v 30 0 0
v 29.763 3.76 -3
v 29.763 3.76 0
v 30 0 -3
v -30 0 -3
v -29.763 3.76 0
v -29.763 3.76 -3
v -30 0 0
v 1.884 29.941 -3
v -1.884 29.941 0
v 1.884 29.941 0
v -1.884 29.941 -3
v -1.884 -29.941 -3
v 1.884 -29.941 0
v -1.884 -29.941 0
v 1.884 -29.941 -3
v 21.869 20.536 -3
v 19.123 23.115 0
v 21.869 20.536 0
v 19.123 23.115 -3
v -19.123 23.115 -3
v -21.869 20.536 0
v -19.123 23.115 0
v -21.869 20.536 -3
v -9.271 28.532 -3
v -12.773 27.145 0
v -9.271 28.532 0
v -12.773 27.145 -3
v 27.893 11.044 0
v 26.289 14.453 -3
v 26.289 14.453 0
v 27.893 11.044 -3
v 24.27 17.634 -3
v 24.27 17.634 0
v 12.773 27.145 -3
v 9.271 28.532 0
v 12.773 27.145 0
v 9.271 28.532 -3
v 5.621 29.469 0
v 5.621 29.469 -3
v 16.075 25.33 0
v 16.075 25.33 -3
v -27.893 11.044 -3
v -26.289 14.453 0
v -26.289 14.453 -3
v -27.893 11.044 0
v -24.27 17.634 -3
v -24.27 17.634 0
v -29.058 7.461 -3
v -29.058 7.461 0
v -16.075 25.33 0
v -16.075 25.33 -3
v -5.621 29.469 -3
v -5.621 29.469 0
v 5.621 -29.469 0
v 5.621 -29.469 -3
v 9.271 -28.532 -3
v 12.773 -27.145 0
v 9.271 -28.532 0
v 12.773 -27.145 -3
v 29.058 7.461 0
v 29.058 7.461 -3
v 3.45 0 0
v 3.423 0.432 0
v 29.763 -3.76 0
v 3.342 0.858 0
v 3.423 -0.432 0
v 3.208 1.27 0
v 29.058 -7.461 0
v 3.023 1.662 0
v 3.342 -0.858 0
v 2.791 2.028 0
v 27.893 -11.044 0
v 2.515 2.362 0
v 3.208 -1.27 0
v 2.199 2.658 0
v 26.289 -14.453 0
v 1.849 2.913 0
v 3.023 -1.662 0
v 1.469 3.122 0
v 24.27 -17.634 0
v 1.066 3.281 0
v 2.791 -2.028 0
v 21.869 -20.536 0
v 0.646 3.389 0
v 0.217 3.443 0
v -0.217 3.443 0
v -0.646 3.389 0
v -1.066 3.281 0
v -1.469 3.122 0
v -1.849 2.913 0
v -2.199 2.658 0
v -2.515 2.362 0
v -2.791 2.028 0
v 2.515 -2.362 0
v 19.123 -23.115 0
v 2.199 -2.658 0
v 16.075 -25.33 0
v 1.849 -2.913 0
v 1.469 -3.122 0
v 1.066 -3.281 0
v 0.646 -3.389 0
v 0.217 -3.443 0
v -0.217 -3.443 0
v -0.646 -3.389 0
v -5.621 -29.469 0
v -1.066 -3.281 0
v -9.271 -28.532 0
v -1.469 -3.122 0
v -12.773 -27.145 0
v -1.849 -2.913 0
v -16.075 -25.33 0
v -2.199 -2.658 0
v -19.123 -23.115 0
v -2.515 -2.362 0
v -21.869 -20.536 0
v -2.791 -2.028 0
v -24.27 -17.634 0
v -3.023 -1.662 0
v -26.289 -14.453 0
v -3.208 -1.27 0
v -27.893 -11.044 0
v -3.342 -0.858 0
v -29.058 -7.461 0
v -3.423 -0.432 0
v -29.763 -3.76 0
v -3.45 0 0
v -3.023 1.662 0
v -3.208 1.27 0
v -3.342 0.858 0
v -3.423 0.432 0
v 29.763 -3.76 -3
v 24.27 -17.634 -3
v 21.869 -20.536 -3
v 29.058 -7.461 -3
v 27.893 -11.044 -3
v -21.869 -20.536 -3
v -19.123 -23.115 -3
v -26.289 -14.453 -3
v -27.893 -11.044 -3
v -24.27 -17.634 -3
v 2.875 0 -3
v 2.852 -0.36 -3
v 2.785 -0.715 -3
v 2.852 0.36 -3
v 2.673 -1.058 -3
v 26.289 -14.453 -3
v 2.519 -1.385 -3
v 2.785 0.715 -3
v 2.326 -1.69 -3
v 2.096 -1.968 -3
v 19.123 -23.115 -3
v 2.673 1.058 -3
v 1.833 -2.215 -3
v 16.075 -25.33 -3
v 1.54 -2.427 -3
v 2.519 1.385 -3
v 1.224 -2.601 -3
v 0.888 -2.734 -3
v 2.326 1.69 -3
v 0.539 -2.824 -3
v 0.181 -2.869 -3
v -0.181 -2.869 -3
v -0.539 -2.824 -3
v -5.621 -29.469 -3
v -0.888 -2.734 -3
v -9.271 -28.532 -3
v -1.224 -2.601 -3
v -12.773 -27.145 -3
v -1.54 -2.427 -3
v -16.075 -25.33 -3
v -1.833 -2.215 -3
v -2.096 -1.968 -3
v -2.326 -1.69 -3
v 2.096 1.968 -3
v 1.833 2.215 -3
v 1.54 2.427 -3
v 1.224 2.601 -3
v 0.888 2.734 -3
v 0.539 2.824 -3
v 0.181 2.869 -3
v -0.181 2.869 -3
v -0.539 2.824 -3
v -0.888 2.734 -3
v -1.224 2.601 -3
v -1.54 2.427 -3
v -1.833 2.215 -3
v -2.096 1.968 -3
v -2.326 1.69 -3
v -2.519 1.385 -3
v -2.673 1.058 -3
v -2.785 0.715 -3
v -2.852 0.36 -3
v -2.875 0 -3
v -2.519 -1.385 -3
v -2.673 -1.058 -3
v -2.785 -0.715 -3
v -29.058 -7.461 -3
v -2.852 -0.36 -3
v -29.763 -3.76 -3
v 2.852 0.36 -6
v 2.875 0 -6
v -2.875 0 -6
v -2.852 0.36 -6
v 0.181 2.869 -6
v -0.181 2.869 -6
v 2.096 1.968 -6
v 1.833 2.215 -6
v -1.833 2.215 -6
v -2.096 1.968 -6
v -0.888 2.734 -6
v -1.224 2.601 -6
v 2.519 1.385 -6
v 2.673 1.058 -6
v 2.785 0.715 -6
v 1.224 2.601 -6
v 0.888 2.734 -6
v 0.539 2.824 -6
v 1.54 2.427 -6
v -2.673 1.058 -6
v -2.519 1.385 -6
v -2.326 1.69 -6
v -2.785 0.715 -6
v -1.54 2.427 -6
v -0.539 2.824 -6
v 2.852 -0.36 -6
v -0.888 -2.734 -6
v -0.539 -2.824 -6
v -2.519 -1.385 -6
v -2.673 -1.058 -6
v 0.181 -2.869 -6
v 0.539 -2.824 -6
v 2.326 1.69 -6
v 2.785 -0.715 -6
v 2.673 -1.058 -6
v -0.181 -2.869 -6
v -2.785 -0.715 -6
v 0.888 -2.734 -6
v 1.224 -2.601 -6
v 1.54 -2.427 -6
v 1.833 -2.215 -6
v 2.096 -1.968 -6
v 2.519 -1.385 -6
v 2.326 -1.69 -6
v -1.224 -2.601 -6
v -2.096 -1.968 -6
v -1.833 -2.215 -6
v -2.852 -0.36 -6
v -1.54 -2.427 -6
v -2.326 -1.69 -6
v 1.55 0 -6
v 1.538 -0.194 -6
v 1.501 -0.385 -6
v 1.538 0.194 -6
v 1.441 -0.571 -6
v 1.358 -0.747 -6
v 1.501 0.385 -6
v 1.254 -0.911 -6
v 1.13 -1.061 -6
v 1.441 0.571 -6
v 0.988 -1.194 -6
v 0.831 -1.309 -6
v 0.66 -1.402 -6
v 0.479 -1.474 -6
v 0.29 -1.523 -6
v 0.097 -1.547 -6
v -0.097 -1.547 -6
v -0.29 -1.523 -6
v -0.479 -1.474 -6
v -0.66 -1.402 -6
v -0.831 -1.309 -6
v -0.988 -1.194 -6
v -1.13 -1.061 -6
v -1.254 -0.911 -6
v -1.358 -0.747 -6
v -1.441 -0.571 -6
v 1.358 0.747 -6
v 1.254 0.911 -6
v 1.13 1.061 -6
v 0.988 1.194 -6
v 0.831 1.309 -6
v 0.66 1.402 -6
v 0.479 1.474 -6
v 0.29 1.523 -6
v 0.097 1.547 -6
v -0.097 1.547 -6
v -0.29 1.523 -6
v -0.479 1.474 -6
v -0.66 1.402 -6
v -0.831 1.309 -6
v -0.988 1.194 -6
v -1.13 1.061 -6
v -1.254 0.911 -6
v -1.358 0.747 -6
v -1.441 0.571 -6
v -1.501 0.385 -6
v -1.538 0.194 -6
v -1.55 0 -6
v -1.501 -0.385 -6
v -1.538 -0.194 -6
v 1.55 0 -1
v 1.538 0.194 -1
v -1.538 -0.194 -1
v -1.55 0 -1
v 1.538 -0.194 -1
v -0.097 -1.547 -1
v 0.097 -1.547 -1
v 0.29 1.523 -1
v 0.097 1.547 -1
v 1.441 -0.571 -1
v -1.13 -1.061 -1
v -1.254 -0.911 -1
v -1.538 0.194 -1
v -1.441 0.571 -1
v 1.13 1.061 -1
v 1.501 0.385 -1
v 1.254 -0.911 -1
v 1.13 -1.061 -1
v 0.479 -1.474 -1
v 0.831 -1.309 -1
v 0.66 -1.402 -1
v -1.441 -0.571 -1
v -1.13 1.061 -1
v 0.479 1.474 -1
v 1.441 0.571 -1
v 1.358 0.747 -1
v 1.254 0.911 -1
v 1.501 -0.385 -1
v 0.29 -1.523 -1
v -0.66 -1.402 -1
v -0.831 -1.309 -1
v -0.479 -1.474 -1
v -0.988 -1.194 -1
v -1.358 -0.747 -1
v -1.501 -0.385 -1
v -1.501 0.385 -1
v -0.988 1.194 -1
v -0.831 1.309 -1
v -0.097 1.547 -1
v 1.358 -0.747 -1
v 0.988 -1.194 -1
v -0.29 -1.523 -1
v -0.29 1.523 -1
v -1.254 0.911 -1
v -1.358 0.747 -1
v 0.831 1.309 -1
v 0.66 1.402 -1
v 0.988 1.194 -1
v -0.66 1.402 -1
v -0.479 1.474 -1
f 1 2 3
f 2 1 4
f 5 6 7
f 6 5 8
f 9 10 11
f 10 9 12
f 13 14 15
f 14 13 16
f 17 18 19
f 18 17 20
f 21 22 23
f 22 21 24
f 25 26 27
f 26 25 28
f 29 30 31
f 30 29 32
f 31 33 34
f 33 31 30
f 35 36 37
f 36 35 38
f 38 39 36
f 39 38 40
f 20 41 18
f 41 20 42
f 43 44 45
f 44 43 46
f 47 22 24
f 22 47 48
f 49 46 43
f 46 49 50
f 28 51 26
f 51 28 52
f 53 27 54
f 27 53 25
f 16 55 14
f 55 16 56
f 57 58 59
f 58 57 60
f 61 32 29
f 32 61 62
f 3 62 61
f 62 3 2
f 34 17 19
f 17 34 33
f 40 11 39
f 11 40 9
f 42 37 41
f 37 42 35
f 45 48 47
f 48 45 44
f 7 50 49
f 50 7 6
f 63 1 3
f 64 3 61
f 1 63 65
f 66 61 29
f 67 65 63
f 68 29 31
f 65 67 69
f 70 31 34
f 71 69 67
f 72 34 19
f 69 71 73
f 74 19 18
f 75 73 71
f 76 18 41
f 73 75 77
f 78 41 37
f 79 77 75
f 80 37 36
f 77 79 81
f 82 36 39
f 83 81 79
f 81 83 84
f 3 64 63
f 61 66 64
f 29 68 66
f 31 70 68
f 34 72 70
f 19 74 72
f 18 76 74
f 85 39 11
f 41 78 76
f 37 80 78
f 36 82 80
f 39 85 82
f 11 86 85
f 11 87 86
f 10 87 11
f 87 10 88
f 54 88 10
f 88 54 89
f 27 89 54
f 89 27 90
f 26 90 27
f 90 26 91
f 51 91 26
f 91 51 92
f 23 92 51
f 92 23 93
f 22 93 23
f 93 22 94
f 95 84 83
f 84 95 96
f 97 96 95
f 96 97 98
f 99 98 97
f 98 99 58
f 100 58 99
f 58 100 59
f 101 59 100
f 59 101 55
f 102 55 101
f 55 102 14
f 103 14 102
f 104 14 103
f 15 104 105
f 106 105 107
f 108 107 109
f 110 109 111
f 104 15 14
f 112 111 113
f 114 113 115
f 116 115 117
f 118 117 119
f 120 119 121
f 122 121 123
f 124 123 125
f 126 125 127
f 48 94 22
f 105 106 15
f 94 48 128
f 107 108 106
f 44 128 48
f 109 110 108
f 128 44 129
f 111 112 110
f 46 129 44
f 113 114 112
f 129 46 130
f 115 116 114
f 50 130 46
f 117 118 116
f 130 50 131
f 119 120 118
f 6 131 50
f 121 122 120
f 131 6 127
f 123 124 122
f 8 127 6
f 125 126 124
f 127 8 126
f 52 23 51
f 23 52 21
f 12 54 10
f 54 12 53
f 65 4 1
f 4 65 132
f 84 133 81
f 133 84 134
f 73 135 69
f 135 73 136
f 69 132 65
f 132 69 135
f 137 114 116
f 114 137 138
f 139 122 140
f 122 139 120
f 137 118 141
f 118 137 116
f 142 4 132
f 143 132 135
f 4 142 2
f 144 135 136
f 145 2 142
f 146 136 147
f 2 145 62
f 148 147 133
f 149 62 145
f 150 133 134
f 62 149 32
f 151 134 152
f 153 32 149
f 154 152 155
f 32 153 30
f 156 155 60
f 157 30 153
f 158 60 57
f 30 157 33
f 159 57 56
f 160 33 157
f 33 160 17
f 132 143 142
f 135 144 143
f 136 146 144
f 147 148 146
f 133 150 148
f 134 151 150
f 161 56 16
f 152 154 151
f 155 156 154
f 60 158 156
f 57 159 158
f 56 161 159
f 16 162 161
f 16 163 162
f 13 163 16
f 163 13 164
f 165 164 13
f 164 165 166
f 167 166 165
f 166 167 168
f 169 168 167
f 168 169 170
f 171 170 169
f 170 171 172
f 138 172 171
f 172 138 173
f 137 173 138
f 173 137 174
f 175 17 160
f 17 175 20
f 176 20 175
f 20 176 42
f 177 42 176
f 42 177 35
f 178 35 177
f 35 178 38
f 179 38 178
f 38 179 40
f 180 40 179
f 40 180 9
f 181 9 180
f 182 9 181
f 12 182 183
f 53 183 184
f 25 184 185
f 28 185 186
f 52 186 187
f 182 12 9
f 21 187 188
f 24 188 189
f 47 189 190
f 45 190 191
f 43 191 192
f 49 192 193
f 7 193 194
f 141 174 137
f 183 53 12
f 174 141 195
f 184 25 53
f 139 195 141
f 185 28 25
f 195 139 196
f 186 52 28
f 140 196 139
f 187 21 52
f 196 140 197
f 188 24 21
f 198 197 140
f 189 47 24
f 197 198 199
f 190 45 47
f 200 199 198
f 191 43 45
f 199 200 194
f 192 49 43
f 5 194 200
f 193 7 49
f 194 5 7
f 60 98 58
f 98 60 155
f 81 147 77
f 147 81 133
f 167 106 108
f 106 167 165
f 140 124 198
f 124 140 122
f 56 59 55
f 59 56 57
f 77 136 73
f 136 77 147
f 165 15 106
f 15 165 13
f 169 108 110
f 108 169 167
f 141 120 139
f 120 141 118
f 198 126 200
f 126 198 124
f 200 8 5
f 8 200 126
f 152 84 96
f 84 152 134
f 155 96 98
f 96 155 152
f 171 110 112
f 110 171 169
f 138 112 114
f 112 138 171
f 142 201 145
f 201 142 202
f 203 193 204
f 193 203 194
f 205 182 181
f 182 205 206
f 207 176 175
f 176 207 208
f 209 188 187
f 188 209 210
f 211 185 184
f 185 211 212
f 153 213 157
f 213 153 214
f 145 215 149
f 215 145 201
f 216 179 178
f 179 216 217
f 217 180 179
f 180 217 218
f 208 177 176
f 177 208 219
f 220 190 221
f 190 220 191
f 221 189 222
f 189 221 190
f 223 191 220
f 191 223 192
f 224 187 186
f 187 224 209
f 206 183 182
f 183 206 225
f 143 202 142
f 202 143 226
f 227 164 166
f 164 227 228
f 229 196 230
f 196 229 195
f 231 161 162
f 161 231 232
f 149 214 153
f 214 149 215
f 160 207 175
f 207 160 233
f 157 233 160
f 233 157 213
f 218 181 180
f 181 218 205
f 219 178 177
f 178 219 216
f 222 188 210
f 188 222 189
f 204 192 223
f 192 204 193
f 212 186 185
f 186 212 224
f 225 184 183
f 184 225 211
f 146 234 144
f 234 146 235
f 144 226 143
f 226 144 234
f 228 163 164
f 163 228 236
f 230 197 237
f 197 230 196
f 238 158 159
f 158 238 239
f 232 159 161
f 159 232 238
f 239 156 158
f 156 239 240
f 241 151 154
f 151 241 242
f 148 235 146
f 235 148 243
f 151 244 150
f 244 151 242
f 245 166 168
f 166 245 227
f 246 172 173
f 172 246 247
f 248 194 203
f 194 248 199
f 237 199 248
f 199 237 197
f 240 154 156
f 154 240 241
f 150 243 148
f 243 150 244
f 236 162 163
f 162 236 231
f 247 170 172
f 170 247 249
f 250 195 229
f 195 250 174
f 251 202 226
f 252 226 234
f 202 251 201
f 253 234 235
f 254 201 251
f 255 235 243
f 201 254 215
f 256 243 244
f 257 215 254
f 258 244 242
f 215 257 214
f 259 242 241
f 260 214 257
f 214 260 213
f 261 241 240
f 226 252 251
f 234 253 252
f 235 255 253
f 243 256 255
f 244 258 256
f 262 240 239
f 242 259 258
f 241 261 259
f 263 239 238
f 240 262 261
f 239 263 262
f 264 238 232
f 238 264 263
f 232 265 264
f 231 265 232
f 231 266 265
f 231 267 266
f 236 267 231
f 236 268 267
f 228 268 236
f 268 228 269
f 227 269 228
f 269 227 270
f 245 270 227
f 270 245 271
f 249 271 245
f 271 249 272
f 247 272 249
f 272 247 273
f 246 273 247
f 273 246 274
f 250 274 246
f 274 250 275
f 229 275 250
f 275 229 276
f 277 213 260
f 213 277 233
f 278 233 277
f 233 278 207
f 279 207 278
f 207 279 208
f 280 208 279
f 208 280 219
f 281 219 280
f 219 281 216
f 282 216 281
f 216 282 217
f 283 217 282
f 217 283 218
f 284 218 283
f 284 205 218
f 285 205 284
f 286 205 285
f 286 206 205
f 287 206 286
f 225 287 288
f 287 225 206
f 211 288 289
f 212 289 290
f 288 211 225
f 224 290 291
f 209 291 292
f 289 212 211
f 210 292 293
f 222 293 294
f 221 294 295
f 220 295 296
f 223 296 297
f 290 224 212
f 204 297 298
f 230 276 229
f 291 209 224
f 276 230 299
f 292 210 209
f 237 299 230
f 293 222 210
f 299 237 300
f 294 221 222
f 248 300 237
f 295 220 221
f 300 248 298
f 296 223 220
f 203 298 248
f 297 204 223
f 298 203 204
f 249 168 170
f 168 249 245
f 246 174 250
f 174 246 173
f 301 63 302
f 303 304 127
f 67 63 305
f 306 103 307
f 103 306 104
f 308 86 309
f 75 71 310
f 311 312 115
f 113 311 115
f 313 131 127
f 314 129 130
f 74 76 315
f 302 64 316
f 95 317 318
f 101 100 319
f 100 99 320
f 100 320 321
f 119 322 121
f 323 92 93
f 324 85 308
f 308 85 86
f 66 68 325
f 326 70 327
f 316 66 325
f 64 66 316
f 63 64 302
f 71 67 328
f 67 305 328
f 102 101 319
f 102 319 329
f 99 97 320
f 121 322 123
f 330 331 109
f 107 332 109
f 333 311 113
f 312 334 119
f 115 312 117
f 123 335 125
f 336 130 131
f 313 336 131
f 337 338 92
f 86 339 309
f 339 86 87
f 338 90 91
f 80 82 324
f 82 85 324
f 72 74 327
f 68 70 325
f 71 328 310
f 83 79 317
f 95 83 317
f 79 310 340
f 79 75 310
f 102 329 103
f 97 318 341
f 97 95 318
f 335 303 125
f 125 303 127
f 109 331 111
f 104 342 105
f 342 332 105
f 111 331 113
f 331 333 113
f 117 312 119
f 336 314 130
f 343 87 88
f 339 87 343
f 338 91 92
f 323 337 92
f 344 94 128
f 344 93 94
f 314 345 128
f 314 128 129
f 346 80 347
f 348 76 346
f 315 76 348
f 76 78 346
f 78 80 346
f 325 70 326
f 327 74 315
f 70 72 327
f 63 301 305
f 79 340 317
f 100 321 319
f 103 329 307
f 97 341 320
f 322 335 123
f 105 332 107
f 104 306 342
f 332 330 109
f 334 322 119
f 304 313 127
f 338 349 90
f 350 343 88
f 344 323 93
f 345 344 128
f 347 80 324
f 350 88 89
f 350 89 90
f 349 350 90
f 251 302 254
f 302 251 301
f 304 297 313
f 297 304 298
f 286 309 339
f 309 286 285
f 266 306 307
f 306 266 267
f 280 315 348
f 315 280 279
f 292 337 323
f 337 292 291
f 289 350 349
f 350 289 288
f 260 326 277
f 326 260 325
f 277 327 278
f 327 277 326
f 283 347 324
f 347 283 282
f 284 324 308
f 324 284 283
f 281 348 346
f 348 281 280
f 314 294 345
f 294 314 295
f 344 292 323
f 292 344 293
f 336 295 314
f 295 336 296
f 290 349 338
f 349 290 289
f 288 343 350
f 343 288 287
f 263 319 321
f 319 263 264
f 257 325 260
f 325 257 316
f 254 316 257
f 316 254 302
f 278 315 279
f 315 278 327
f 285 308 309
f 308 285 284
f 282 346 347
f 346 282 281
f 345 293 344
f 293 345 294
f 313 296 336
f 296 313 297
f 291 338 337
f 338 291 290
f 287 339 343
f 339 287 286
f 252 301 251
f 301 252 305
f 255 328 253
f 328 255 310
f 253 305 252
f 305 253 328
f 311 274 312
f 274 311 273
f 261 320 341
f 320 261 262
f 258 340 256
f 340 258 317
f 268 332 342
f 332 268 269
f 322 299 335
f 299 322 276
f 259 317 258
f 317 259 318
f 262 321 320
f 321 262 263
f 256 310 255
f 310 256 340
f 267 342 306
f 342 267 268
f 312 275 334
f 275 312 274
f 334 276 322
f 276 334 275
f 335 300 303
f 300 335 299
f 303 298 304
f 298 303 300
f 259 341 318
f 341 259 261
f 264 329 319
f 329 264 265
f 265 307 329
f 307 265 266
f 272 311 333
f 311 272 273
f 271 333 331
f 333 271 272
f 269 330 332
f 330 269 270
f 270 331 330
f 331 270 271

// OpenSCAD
$fn = 50;


difference() {
	union() {
		translate(v = [0, 0, -3.0000000000]) {
			cylinder(h = 3, r = 30.0000000000);
		}
		#translate(v = [0, 0, -6.0000000000]) {
			cylinder(h = 6, r = 2.8750000000);
		}
	}
	union() {
		translate(v = [0, 0, 0]) {
			rotate(a = [0, 0, 0]) {
				difference() {
					union() {
						translate(v = [0, 0, -6.0000000000]) {
							cylinder(h = 6, r = 1.2500000000);
						}
						translate(v = [0, 0, -1.0000000000]) {
							cylinder(h = 1.0000000000, r1 = 1.5500000000, r2 = 3.4500000000);
						}
						translate(v = [0, 0, -6.0000000000]) {
							cylinder(h = 6, r = 1.5500000000);
						}
						translate(v = [0, 0, -6.0000000000]) {
							cylinder(h = 6, r = 1.2500000000);
						}
					}
					union();
				}
			}
		}
	}
}
